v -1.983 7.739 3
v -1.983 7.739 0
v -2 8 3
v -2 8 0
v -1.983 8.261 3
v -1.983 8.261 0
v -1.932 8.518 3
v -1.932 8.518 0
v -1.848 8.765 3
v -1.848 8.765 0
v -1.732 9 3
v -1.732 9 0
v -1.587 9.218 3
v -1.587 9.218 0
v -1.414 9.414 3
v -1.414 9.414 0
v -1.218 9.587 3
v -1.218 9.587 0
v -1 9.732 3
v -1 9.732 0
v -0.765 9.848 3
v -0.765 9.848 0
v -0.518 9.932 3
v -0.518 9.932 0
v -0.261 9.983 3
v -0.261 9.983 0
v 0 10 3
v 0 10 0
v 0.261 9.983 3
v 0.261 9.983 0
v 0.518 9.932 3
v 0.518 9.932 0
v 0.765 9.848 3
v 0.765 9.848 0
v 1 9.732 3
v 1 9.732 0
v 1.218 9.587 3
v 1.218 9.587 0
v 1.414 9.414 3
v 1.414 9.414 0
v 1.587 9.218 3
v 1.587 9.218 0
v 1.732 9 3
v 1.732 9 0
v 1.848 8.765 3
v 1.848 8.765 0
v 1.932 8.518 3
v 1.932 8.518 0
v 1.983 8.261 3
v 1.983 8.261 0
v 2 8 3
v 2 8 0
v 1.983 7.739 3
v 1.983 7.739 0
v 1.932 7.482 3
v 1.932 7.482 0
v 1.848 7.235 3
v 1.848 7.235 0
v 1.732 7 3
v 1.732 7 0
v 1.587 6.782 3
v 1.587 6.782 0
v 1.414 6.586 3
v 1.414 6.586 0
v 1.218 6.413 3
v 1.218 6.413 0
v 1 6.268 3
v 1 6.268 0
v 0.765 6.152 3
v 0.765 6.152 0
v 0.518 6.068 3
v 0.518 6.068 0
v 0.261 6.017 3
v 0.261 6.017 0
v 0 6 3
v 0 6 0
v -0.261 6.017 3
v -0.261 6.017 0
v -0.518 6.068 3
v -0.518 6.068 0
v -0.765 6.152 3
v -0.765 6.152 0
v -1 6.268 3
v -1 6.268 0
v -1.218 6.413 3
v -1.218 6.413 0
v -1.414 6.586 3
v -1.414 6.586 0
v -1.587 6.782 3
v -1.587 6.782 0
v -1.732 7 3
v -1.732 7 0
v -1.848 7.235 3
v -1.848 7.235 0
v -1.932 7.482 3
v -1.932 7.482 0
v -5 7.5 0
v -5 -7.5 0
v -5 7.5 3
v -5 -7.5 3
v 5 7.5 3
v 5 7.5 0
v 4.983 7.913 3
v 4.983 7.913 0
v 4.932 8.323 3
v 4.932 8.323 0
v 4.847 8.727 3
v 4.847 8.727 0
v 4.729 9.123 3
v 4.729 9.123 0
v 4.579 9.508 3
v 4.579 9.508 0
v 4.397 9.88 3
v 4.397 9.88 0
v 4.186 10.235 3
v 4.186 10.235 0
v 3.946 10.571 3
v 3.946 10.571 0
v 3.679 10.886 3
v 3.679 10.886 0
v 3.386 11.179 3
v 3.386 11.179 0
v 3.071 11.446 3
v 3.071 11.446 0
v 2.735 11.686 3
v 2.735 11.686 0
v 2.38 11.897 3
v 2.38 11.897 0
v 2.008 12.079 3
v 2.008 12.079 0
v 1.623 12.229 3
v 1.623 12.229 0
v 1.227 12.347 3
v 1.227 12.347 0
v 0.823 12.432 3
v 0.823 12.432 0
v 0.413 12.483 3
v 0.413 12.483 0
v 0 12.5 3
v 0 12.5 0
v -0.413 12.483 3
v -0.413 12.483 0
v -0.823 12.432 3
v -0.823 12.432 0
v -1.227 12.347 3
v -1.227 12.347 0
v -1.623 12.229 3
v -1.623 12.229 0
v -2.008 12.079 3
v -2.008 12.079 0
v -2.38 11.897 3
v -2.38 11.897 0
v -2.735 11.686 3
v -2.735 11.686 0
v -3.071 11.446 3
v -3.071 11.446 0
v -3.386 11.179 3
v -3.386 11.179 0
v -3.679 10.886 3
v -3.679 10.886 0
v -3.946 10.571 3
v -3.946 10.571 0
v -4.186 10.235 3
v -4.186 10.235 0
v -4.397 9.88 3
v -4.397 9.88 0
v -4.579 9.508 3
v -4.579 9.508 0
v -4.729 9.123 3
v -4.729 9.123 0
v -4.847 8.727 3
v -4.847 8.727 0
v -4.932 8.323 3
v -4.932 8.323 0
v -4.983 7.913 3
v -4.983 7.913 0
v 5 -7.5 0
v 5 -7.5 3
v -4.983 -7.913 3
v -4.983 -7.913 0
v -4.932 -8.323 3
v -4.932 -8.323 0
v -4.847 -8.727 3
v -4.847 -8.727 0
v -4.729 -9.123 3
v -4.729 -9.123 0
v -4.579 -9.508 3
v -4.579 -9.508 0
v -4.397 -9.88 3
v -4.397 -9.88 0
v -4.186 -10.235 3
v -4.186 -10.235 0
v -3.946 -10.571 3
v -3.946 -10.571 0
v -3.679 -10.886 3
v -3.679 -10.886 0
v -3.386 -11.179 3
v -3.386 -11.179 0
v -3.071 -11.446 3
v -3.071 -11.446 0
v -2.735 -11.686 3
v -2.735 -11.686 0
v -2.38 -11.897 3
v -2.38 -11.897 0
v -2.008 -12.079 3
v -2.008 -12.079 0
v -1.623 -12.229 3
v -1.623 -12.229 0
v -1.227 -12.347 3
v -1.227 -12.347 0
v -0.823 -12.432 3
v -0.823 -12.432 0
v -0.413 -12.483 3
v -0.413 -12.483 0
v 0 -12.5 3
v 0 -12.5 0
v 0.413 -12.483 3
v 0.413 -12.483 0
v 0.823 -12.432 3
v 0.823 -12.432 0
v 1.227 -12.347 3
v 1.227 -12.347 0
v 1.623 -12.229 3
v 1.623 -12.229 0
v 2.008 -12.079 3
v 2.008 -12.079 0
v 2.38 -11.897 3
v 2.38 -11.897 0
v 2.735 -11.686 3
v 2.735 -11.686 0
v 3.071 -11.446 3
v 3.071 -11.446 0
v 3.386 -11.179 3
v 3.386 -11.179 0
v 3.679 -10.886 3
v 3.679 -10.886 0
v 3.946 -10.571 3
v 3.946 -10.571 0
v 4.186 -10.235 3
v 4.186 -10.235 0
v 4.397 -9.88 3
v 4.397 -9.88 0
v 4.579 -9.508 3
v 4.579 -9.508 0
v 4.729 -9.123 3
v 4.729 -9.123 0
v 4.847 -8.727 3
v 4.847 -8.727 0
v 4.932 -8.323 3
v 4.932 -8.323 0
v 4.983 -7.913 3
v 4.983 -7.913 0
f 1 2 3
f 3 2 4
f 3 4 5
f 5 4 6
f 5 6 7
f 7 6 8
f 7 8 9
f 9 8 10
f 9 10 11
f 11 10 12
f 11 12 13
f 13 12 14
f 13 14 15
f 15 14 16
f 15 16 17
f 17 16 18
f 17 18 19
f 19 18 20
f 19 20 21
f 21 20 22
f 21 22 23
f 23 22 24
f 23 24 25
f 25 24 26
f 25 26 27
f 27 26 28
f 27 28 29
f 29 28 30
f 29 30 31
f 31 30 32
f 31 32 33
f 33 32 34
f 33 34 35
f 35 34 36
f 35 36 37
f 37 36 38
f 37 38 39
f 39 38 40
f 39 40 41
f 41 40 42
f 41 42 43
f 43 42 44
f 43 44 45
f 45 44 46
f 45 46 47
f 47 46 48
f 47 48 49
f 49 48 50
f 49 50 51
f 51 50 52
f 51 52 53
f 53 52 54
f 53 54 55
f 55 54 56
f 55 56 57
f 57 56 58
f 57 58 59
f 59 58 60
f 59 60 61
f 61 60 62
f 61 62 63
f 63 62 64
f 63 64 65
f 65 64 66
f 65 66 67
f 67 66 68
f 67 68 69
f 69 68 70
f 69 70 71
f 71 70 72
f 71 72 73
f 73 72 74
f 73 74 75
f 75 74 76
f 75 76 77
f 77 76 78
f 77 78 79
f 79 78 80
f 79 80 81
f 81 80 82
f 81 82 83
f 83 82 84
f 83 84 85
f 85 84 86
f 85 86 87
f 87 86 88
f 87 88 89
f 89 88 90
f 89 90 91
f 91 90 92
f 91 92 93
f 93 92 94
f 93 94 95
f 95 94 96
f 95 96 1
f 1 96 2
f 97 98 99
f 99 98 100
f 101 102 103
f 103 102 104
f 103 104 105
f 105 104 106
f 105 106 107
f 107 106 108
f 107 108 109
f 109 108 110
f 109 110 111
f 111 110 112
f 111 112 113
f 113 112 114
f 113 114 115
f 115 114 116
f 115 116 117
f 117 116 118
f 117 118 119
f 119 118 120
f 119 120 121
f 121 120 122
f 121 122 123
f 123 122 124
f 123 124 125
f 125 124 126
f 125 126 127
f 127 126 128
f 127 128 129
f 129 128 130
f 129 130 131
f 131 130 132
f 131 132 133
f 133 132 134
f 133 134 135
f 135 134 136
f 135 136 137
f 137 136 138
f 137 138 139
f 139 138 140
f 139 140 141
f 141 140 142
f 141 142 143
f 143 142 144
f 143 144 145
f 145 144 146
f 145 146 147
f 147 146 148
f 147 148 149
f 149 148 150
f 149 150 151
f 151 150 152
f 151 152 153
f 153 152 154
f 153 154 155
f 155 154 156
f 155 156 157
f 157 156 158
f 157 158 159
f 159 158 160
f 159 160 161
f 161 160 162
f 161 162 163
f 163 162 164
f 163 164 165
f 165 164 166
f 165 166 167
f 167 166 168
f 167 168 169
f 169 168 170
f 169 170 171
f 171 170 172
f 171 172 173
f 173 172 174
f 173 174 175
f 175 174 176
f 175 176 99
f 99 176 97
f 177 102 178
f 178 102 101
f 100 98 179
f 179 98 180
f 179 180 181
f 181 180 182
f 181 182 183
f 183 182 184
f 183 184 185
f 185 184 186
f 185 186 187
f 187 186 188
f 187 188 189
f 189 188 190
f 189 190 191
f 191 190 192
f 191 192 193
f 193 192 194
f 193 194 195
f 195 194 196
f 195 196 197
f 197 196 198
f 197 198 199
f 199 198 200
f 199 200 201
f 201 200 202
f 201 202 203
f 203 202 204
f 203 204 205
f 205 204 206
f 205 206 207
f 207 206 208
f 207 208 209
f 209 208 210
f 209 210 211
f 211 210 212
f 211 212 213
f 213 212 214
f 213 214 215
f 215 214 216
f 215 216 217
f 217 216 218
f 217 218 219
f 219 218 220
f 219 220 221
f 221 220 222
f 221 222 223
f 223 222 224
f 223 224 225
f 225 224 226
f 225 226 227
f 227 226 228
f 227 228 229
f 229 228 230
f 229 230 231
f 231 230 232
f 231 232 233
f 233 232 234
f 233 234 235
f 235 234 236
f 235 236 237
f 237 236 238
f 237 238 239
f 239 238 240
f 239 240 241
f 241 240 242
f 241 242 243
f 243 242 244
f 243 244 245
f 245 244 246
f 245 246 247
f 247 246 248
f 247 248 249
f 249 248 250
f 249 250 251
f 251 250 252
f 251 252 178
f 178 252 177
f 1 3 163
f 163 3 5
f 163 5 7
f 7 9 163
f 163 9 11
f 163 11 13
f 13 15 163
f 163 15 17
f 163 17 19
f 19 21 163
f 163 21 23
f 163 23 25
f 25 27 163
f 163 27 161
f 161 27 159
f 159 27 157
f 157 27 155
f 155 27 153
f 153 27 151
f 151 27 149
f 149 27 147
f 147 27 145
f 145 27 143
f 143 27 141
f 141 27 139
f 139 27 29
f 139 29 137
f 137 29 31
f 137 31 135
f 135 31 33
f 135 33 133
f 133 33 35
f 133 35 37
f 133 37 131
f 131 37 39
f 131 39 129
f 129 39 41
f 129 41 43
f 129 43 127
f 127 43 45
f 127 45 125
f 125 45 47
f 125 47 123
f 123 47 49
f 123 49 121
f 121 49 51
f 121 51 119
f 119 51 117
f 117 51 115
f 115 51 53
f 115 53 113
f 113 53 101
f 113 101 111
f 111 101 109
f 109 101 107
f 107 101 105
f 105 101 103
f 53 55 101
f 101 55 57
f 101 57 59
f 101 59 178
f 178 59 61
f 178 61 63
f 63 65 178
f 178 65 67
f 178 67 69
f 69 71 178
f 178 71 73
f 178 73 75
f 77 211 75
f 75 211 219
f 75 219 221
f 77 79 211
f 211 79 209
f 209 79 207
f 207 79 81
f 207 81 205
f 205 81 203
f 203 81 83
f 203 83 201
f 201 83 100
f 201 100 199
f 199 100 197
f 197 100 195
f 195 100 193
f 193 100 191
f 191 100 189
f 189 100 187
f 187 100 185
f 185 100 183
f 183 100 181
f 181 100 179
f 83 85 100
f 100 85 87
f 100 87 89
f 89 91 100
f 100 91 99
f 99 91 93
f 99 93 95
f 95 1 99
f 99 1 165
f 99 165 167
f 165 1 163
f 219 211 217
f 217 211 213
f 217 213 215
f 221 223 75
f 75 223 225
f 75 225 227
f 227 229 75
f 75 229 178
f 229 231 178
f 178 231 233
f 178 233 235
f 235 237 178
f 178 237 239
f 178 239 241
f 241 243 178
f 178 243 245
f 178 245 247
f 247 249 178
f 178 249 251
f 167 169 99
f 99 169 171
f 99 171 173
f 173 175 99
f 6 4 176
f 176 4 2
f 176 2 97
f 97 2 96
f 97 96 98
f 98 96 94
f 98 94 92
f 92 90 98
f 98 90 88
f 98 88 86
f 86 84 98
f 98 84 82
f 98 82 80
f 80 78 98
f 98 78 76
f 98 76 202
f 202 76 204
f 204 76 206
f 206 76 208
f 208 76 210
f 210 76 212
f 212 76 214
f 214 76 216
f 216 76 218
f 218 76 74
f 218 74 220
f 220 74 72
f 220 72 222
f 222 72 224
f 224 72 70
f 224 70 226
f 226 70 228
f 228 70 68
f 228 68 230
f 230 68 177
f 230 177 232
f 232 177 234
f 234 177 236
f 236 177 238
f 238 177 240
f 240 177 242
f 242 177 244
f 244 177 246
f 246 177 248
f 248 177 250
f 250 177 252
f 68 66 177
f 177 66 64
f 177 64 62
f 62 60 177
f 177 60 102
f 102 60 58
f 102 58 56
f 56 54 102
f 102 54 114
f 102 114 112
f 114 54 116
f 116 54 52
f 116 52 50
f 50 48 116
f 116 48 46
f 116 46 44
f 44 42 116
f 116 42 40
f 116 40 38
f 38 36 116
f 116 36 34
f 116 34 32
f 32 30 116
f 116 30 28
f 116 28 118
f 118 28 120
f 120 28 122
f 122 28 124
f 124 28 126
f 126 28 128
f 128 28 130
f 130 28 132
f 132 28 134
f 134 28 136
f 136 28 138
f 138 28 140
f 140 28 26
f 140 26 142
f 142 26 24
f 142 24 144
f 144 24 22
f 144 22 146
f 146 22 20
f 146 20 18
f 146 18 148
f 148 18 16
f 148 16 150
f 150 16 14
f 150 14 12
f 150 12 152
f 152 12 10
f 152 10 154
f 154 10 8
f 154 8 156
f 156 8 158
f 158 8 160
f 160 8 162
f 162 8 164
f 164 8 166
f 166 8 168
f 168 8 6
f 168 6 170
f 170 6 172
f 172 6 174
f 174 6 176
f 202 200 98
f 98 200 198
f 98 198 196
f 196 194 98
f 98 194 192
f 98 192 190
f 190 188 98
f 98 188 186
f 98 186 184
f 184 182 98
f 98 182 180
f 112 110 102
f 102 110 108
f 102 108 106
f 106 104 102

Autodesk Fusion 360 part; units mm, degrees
sketch "Boceto1" plane through (0, 0, 0) normal (0, 0, 1) x (1, 0, 0)
  line L0 (-5, -7.5) -> (-5, 7.5)
  circle A0 centre (0, 8) radius 2
  line L1 (-6, 0) -> (7, 0) construction
  line L2 (0, 8) -> (0, -7) construction
  line L3 (5, -7.5) -> (5, 7.5)
  arc A1 (5, 7.5) -> (-5, 7.5) centre (0, 7.5) ccw
  arc A2 (-5, -7.5) -> (5, -7.5) centre (0, -7.5) ccw
  point P0 (-5, 0)
  point P1 (5, 0)
  dimension "d7" = 15
  dimension "d11" = 4
  dimension "d13" = 5
  dimension "d15" = 15
  dimension "d16" = 5
extrude "Extruir1" add sketch "Boceto1" along normal blind 3
